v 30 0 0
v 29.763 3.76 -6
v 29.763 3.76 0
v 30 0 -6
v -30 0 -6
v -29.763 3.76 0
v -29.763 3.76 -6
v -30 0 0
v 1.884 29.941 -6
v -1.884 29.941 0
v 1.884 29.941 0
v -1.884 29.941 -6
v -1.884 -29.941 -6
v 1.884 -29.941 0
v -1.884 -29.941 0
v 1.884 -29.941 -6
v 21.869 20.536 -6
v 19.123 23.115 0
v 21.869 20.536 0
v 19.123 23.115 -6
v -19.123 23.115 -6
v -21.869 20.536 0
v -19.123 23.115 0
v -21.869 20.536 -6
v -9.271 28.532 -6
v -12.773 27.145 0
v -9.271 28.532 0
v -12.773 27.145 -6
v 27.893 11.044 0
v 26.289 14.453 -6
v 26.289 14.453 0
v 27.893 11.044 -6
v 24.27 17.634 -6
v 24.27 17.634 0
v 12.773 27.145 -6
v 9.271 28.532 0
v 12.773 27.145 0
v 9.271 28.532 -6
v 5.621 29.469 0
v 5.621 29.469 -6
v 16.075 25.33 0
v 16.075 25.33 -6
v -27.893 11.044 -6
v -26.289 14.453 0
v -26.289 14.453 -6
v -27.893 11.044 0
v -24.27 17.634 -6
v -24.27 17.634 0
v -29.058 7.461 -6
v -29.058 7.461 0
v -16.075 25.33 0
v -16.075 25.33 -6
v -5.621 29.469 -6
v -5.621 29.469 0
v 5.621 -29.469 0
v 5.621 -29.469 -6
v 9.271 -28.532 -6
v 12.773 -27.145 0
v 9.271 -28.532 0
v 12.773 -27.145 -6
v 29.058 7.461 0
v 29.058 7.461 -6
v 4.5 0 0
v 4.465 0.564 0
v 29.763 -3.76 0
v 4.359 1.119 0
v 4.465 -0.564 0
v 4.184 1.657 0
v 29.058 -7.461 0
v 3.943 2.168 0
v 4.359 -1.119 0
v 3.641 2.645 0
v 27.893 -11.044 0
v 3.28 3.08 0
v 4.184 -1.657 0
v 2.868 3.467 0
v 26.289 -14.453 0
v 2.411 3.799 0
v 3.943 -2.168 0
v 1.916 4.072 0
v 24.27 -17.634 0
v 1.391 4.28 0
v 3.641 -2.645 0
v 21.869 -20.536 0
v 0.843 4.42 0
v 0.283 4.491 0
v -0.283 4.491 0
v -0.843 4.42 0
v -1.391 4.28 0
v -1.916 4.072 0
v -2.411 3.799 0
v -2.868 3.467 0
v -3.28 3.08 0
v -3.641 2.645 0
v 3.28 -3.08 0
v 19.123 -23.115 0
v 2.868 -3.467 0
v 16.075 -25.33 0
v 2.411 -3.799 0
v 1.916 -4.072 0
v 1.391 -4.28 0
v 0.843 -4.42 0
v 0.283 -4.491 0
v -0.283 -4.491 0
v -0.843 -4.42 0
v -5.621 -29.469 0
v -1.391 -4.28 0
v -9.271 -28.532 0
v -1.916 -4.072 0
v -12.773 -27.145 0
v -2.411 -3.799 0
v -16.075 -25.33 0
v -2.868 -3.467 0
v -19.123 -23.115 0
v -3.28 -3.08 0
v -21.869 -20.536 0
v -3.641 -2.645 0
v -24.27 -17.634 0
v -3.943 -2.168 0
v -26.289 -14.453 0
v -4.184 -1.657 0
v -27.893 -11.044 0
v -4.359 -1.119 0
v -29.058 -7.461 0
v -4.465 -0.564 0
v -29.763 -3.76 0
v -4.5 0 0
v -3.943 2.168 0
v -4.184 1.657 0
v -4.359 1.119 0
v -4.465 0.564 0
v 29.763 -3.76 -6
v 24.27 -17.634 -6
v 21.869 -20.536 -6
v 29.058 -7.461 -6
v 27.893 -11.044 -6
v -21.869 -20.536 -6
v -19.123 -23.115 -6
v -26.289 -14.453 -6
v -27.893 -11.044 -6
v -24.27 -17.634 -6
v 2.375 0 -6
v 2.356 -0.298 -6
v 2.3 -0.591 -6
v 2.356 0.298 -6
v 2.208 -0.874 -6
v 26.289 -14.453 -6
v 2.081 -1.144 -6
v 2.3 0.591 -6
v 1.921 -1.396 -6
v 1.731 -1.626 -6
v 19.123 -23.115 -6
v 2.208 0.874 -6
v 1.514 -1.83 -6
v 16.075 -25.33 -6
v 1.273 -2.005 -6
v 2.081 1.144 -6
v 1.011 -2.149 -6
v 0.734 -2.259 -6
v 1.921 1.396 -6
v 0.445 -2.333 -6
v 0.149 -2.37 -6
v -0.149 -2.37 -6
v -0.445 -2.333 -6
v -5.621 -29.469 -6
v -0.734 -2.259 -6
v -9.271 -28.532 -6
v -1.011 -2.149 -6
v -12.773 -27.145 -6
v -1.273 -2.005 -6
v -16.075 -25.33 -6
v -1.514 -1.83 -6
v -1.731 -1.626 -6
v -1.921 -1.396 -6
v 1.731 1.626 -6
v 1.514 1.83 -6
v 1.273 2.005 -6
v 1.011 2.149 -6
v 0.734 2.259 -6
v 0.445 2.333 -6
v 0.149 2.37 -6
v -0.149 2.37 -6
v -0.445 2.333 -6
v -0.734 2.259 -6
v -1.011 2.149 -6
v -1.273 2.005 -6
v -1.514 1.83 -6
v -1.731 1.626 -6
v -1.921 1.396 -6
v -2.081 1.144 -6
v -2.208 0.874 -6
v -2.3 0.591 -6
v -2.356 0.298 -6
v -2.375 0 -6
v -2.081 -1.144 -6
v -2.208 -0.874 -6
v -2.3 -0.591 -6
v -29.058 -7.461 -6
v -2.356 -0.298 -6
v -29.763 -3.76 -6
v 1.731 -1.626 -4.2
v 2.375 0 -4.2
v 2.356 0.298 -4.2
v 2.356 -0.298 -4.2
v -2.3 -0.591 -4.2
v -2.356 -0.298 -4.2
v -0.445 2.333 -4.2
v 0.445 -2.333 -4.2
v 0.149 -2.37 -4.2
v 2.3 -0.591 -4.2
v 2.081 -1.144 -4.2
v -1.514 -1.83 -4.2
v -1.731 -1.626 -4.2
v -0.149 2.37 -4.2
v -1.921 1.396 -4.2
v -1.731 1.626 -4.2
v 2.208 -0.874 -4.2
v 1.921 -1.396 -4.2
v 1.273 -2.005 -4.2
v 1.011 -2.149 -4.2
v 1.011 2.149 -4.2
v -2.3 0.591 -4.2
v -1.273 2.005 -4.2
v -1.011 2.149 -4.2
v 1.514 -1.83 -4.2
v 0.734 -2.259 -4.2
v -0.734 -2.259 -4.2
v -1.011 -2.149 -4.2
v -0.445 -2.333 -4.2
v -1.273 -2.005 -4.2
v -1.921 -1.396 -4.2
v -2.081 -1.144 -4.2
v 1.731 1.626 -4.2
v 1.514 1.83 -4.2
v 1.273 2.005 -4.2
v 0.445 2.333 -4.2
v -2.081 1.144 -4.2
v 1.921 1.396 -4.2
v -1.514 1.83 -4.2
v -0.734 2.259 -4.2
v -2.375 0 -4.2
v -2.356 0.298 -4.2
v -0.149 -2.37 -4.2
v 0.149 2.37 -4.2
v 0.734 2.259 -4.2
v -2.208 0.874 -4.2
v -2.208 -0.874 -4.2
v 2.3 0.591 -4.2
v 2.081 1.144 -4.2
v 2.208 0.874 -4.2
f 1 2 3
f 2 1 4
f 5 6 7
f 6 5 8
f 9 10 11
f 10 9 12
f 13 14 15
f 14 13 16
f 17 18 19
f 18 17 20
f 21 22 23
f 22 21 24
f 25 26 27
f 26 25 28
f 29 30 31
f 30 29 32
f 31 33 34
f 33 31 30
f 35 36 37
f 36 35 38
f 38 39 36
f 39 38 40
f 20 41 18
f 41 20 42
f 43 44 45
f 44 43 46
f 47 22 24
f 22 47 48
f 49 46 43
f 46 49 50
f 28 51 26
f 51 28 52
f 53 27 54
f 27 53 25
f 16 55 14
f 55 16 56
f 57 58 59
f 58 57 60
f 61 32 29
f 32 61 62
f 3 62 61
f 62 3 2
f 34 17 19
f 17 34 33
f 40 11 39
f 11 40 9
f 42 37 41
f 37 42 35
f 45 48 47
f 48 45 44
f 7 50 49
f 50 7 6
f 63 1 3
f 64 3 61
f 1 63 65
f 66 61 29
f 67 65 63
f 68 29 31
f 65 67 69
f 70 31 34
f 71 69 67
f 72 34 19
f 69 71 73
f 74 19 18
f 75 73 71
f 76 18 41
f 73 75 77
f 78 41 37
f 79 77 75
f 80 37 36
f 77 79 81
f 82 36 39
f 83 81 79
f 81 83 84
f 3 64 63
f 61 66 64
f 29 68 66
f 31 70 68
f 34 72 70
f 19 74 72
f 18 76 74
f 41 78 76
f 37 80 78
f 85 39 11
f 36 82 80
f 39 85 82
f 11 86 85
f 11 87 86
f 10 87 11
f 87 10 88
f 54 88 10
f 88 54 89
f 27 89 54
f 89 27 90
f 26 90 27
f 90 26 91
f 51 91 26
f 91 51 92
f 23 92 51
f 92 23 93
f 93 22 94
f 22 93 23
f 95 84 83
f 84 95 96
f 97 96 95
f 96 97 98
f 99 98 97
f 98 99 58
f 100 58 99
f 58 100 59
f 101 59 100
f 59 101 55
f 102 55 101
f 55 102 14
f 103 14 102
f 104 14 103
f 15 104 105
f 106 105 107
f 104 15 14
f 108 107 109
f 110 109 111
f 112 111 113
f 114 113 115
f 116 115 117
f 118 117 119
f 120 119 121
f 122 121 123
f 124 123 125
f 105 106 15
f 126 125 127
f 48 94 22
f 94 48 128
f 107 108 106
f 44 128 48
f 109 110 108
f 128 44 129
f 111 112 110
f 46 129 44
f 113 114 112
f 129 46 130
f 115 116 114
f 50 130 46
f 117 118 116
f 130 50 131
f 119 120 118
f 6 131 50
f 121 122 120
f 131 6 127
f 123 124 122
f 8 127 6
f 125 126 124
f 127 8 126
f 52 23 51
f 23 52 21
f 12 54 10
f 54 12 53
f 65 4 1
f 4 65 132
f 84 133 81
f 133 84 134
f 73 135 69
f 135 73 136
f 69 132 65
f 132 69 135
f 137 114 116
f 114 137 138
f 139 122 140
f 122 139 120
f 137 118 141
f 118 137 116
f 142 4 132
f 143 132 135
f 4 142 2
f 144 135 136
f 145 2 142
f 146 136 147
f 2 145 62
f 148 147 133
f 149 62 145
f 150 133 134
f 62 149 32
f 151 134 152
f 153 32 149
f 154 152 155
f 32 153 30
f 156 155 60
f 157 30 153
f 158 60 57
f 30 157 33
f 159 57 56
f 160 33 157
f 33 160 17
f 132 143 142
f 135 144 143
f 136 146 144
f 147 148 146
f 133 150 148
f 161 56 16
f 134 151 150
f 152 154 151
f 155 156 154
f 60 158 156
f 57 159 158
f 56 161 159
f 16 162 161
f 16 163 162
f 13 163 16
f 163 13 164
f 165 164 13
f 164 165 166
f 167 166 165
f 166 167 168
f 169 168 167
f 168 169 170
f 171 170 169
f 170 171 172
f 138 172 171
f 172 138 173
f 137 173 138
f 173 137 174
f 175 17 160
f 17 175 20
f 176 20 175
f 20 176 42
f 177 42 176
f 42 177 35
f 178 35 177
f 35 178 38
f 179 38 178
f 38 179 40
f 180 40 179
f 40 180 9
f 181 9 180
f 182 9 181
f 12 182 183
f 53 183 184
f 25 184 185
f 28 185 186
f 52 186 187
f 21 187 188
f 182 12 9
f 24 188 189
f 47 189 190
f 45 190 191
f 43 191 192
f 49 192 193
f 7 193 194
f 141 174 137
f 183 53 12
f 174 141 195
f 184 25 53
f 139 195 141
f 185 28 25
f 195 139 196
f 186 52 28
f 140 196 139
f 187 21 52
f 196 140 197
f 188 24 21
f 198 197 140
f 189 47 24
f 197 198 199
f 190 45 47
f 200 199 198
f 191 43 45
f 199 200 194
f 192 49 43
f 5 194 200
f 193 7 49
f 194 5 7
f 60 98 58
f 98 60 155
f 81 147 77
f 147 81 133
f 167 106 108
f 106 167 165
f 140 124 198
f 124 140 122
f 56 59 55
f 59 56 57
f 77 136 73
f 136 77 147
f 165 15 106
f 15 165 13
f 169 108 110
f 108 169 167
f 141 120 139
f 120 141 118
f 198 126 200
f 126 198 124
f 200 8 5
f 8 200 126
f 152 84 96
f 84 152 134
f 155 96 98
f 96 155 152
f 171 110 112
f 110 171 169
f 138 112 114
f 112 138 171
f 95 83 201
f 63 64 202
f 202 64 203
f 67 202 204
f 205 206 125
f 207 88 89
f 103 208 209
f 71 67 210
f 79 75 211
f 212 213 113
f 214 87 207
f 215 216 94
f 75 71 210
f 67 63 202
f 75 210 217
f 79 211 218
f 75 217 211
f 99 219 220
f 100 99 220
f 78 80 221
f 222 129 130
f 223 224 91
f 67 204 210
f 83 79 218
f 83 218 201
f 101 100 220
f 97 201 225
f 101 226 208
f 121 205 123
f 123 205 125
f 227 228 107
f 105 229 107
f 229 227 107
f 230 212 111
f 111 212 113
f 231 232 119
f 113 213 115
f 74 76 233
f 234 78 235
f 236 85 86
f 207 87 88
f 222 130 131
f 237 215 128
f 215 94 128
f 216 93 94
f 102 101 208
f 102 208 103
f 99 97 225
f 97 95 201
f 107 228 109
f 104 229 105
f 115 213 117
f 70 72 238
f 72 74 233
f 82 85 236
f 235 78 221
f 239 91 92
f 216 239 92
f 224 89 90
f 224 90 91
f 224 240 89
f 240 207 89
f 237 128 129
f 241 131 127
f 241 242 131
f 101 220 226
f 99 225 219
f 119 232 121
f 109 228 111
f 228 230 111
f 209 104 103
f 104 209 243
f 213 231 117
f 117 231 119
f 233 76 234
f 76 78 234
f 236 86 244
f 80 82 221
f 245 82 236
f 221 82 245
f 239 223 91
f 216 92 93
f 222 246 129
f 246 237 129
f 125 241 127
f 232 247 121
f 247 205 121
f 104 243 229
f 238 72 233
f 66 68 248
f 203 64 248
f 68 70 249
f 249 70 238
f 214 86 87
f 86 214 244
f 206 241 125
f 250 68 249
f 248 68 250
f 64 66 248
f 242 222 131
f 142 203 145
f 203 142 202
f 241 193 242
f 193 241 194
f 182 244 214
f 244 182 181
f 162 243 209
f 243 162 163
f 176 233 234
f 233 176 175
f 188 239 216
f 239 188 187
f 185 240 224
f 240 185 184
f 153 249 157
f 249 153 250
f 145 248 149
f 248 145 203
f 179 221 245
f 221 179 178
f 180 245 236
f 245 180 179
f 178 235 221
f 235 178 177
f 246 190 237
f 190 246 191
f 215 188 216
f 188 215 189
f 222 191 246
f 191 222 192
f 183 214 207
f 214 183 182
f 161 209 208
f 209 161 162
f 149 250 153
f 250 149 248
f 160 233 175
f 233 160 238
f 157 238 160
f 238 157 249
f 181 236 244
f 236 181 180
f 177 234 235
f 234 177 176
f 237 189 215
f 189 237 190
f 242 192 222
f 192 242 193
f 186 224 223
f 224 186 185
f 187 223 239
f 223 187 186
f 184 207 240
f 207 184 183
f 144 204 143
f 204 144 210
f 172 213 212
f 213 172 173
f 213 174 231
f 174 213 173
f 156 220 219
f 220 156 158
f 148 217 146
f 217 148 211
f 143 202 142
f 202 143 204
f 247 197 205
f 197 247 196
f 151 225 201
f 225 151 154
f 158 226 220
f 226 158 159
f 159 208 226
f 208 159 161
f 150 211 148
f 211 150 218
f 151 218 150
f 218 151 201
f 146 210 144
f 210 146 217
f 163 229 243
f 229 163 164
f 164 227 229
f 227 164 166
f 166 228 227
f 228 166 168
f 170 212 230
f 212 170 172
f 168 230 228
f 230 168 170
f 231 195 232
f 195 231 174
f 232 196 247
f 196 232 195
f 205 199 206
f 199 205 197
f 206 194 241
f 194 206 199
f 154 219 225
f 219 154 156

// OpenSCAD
$fn = 50;


difference() {
	union() {
		translate(v = [0, 0, -6.0000000000]) {
			cylinder(h = 6, r = 30.0000000000);
		}
		translate(v = [0, 0, -6.0000000000]) {
			cylinder(h = 6, r = 2.8750000000);
		}
	}
	union() {
		translate(v = [0, 0, 0]) {
			rotate(a = [0, 0, 0]) {
				difference() {
					union() {
						translate(v = [0, 0, -6.0000000000]) {
							cylinder(h = 6, r = 2.2500000000);
						}
						translate(v = [0, 0, -4.2000000000]) {
							cylinder(h = 4.2000000000, r1 = 2.3750000000, r2 = 4.5000000000);
						}
						translate(v = [0, 0, -6.0000000000]) {
							cylinder(h = 6, r = 2.3750000000);
						}
						translate(v = [0, 0, -6.0000000000]) {
							cylinder(h = 6, r = 2.2500000000);
						}
					}
					union();
				}
			}
		}
	}
}
